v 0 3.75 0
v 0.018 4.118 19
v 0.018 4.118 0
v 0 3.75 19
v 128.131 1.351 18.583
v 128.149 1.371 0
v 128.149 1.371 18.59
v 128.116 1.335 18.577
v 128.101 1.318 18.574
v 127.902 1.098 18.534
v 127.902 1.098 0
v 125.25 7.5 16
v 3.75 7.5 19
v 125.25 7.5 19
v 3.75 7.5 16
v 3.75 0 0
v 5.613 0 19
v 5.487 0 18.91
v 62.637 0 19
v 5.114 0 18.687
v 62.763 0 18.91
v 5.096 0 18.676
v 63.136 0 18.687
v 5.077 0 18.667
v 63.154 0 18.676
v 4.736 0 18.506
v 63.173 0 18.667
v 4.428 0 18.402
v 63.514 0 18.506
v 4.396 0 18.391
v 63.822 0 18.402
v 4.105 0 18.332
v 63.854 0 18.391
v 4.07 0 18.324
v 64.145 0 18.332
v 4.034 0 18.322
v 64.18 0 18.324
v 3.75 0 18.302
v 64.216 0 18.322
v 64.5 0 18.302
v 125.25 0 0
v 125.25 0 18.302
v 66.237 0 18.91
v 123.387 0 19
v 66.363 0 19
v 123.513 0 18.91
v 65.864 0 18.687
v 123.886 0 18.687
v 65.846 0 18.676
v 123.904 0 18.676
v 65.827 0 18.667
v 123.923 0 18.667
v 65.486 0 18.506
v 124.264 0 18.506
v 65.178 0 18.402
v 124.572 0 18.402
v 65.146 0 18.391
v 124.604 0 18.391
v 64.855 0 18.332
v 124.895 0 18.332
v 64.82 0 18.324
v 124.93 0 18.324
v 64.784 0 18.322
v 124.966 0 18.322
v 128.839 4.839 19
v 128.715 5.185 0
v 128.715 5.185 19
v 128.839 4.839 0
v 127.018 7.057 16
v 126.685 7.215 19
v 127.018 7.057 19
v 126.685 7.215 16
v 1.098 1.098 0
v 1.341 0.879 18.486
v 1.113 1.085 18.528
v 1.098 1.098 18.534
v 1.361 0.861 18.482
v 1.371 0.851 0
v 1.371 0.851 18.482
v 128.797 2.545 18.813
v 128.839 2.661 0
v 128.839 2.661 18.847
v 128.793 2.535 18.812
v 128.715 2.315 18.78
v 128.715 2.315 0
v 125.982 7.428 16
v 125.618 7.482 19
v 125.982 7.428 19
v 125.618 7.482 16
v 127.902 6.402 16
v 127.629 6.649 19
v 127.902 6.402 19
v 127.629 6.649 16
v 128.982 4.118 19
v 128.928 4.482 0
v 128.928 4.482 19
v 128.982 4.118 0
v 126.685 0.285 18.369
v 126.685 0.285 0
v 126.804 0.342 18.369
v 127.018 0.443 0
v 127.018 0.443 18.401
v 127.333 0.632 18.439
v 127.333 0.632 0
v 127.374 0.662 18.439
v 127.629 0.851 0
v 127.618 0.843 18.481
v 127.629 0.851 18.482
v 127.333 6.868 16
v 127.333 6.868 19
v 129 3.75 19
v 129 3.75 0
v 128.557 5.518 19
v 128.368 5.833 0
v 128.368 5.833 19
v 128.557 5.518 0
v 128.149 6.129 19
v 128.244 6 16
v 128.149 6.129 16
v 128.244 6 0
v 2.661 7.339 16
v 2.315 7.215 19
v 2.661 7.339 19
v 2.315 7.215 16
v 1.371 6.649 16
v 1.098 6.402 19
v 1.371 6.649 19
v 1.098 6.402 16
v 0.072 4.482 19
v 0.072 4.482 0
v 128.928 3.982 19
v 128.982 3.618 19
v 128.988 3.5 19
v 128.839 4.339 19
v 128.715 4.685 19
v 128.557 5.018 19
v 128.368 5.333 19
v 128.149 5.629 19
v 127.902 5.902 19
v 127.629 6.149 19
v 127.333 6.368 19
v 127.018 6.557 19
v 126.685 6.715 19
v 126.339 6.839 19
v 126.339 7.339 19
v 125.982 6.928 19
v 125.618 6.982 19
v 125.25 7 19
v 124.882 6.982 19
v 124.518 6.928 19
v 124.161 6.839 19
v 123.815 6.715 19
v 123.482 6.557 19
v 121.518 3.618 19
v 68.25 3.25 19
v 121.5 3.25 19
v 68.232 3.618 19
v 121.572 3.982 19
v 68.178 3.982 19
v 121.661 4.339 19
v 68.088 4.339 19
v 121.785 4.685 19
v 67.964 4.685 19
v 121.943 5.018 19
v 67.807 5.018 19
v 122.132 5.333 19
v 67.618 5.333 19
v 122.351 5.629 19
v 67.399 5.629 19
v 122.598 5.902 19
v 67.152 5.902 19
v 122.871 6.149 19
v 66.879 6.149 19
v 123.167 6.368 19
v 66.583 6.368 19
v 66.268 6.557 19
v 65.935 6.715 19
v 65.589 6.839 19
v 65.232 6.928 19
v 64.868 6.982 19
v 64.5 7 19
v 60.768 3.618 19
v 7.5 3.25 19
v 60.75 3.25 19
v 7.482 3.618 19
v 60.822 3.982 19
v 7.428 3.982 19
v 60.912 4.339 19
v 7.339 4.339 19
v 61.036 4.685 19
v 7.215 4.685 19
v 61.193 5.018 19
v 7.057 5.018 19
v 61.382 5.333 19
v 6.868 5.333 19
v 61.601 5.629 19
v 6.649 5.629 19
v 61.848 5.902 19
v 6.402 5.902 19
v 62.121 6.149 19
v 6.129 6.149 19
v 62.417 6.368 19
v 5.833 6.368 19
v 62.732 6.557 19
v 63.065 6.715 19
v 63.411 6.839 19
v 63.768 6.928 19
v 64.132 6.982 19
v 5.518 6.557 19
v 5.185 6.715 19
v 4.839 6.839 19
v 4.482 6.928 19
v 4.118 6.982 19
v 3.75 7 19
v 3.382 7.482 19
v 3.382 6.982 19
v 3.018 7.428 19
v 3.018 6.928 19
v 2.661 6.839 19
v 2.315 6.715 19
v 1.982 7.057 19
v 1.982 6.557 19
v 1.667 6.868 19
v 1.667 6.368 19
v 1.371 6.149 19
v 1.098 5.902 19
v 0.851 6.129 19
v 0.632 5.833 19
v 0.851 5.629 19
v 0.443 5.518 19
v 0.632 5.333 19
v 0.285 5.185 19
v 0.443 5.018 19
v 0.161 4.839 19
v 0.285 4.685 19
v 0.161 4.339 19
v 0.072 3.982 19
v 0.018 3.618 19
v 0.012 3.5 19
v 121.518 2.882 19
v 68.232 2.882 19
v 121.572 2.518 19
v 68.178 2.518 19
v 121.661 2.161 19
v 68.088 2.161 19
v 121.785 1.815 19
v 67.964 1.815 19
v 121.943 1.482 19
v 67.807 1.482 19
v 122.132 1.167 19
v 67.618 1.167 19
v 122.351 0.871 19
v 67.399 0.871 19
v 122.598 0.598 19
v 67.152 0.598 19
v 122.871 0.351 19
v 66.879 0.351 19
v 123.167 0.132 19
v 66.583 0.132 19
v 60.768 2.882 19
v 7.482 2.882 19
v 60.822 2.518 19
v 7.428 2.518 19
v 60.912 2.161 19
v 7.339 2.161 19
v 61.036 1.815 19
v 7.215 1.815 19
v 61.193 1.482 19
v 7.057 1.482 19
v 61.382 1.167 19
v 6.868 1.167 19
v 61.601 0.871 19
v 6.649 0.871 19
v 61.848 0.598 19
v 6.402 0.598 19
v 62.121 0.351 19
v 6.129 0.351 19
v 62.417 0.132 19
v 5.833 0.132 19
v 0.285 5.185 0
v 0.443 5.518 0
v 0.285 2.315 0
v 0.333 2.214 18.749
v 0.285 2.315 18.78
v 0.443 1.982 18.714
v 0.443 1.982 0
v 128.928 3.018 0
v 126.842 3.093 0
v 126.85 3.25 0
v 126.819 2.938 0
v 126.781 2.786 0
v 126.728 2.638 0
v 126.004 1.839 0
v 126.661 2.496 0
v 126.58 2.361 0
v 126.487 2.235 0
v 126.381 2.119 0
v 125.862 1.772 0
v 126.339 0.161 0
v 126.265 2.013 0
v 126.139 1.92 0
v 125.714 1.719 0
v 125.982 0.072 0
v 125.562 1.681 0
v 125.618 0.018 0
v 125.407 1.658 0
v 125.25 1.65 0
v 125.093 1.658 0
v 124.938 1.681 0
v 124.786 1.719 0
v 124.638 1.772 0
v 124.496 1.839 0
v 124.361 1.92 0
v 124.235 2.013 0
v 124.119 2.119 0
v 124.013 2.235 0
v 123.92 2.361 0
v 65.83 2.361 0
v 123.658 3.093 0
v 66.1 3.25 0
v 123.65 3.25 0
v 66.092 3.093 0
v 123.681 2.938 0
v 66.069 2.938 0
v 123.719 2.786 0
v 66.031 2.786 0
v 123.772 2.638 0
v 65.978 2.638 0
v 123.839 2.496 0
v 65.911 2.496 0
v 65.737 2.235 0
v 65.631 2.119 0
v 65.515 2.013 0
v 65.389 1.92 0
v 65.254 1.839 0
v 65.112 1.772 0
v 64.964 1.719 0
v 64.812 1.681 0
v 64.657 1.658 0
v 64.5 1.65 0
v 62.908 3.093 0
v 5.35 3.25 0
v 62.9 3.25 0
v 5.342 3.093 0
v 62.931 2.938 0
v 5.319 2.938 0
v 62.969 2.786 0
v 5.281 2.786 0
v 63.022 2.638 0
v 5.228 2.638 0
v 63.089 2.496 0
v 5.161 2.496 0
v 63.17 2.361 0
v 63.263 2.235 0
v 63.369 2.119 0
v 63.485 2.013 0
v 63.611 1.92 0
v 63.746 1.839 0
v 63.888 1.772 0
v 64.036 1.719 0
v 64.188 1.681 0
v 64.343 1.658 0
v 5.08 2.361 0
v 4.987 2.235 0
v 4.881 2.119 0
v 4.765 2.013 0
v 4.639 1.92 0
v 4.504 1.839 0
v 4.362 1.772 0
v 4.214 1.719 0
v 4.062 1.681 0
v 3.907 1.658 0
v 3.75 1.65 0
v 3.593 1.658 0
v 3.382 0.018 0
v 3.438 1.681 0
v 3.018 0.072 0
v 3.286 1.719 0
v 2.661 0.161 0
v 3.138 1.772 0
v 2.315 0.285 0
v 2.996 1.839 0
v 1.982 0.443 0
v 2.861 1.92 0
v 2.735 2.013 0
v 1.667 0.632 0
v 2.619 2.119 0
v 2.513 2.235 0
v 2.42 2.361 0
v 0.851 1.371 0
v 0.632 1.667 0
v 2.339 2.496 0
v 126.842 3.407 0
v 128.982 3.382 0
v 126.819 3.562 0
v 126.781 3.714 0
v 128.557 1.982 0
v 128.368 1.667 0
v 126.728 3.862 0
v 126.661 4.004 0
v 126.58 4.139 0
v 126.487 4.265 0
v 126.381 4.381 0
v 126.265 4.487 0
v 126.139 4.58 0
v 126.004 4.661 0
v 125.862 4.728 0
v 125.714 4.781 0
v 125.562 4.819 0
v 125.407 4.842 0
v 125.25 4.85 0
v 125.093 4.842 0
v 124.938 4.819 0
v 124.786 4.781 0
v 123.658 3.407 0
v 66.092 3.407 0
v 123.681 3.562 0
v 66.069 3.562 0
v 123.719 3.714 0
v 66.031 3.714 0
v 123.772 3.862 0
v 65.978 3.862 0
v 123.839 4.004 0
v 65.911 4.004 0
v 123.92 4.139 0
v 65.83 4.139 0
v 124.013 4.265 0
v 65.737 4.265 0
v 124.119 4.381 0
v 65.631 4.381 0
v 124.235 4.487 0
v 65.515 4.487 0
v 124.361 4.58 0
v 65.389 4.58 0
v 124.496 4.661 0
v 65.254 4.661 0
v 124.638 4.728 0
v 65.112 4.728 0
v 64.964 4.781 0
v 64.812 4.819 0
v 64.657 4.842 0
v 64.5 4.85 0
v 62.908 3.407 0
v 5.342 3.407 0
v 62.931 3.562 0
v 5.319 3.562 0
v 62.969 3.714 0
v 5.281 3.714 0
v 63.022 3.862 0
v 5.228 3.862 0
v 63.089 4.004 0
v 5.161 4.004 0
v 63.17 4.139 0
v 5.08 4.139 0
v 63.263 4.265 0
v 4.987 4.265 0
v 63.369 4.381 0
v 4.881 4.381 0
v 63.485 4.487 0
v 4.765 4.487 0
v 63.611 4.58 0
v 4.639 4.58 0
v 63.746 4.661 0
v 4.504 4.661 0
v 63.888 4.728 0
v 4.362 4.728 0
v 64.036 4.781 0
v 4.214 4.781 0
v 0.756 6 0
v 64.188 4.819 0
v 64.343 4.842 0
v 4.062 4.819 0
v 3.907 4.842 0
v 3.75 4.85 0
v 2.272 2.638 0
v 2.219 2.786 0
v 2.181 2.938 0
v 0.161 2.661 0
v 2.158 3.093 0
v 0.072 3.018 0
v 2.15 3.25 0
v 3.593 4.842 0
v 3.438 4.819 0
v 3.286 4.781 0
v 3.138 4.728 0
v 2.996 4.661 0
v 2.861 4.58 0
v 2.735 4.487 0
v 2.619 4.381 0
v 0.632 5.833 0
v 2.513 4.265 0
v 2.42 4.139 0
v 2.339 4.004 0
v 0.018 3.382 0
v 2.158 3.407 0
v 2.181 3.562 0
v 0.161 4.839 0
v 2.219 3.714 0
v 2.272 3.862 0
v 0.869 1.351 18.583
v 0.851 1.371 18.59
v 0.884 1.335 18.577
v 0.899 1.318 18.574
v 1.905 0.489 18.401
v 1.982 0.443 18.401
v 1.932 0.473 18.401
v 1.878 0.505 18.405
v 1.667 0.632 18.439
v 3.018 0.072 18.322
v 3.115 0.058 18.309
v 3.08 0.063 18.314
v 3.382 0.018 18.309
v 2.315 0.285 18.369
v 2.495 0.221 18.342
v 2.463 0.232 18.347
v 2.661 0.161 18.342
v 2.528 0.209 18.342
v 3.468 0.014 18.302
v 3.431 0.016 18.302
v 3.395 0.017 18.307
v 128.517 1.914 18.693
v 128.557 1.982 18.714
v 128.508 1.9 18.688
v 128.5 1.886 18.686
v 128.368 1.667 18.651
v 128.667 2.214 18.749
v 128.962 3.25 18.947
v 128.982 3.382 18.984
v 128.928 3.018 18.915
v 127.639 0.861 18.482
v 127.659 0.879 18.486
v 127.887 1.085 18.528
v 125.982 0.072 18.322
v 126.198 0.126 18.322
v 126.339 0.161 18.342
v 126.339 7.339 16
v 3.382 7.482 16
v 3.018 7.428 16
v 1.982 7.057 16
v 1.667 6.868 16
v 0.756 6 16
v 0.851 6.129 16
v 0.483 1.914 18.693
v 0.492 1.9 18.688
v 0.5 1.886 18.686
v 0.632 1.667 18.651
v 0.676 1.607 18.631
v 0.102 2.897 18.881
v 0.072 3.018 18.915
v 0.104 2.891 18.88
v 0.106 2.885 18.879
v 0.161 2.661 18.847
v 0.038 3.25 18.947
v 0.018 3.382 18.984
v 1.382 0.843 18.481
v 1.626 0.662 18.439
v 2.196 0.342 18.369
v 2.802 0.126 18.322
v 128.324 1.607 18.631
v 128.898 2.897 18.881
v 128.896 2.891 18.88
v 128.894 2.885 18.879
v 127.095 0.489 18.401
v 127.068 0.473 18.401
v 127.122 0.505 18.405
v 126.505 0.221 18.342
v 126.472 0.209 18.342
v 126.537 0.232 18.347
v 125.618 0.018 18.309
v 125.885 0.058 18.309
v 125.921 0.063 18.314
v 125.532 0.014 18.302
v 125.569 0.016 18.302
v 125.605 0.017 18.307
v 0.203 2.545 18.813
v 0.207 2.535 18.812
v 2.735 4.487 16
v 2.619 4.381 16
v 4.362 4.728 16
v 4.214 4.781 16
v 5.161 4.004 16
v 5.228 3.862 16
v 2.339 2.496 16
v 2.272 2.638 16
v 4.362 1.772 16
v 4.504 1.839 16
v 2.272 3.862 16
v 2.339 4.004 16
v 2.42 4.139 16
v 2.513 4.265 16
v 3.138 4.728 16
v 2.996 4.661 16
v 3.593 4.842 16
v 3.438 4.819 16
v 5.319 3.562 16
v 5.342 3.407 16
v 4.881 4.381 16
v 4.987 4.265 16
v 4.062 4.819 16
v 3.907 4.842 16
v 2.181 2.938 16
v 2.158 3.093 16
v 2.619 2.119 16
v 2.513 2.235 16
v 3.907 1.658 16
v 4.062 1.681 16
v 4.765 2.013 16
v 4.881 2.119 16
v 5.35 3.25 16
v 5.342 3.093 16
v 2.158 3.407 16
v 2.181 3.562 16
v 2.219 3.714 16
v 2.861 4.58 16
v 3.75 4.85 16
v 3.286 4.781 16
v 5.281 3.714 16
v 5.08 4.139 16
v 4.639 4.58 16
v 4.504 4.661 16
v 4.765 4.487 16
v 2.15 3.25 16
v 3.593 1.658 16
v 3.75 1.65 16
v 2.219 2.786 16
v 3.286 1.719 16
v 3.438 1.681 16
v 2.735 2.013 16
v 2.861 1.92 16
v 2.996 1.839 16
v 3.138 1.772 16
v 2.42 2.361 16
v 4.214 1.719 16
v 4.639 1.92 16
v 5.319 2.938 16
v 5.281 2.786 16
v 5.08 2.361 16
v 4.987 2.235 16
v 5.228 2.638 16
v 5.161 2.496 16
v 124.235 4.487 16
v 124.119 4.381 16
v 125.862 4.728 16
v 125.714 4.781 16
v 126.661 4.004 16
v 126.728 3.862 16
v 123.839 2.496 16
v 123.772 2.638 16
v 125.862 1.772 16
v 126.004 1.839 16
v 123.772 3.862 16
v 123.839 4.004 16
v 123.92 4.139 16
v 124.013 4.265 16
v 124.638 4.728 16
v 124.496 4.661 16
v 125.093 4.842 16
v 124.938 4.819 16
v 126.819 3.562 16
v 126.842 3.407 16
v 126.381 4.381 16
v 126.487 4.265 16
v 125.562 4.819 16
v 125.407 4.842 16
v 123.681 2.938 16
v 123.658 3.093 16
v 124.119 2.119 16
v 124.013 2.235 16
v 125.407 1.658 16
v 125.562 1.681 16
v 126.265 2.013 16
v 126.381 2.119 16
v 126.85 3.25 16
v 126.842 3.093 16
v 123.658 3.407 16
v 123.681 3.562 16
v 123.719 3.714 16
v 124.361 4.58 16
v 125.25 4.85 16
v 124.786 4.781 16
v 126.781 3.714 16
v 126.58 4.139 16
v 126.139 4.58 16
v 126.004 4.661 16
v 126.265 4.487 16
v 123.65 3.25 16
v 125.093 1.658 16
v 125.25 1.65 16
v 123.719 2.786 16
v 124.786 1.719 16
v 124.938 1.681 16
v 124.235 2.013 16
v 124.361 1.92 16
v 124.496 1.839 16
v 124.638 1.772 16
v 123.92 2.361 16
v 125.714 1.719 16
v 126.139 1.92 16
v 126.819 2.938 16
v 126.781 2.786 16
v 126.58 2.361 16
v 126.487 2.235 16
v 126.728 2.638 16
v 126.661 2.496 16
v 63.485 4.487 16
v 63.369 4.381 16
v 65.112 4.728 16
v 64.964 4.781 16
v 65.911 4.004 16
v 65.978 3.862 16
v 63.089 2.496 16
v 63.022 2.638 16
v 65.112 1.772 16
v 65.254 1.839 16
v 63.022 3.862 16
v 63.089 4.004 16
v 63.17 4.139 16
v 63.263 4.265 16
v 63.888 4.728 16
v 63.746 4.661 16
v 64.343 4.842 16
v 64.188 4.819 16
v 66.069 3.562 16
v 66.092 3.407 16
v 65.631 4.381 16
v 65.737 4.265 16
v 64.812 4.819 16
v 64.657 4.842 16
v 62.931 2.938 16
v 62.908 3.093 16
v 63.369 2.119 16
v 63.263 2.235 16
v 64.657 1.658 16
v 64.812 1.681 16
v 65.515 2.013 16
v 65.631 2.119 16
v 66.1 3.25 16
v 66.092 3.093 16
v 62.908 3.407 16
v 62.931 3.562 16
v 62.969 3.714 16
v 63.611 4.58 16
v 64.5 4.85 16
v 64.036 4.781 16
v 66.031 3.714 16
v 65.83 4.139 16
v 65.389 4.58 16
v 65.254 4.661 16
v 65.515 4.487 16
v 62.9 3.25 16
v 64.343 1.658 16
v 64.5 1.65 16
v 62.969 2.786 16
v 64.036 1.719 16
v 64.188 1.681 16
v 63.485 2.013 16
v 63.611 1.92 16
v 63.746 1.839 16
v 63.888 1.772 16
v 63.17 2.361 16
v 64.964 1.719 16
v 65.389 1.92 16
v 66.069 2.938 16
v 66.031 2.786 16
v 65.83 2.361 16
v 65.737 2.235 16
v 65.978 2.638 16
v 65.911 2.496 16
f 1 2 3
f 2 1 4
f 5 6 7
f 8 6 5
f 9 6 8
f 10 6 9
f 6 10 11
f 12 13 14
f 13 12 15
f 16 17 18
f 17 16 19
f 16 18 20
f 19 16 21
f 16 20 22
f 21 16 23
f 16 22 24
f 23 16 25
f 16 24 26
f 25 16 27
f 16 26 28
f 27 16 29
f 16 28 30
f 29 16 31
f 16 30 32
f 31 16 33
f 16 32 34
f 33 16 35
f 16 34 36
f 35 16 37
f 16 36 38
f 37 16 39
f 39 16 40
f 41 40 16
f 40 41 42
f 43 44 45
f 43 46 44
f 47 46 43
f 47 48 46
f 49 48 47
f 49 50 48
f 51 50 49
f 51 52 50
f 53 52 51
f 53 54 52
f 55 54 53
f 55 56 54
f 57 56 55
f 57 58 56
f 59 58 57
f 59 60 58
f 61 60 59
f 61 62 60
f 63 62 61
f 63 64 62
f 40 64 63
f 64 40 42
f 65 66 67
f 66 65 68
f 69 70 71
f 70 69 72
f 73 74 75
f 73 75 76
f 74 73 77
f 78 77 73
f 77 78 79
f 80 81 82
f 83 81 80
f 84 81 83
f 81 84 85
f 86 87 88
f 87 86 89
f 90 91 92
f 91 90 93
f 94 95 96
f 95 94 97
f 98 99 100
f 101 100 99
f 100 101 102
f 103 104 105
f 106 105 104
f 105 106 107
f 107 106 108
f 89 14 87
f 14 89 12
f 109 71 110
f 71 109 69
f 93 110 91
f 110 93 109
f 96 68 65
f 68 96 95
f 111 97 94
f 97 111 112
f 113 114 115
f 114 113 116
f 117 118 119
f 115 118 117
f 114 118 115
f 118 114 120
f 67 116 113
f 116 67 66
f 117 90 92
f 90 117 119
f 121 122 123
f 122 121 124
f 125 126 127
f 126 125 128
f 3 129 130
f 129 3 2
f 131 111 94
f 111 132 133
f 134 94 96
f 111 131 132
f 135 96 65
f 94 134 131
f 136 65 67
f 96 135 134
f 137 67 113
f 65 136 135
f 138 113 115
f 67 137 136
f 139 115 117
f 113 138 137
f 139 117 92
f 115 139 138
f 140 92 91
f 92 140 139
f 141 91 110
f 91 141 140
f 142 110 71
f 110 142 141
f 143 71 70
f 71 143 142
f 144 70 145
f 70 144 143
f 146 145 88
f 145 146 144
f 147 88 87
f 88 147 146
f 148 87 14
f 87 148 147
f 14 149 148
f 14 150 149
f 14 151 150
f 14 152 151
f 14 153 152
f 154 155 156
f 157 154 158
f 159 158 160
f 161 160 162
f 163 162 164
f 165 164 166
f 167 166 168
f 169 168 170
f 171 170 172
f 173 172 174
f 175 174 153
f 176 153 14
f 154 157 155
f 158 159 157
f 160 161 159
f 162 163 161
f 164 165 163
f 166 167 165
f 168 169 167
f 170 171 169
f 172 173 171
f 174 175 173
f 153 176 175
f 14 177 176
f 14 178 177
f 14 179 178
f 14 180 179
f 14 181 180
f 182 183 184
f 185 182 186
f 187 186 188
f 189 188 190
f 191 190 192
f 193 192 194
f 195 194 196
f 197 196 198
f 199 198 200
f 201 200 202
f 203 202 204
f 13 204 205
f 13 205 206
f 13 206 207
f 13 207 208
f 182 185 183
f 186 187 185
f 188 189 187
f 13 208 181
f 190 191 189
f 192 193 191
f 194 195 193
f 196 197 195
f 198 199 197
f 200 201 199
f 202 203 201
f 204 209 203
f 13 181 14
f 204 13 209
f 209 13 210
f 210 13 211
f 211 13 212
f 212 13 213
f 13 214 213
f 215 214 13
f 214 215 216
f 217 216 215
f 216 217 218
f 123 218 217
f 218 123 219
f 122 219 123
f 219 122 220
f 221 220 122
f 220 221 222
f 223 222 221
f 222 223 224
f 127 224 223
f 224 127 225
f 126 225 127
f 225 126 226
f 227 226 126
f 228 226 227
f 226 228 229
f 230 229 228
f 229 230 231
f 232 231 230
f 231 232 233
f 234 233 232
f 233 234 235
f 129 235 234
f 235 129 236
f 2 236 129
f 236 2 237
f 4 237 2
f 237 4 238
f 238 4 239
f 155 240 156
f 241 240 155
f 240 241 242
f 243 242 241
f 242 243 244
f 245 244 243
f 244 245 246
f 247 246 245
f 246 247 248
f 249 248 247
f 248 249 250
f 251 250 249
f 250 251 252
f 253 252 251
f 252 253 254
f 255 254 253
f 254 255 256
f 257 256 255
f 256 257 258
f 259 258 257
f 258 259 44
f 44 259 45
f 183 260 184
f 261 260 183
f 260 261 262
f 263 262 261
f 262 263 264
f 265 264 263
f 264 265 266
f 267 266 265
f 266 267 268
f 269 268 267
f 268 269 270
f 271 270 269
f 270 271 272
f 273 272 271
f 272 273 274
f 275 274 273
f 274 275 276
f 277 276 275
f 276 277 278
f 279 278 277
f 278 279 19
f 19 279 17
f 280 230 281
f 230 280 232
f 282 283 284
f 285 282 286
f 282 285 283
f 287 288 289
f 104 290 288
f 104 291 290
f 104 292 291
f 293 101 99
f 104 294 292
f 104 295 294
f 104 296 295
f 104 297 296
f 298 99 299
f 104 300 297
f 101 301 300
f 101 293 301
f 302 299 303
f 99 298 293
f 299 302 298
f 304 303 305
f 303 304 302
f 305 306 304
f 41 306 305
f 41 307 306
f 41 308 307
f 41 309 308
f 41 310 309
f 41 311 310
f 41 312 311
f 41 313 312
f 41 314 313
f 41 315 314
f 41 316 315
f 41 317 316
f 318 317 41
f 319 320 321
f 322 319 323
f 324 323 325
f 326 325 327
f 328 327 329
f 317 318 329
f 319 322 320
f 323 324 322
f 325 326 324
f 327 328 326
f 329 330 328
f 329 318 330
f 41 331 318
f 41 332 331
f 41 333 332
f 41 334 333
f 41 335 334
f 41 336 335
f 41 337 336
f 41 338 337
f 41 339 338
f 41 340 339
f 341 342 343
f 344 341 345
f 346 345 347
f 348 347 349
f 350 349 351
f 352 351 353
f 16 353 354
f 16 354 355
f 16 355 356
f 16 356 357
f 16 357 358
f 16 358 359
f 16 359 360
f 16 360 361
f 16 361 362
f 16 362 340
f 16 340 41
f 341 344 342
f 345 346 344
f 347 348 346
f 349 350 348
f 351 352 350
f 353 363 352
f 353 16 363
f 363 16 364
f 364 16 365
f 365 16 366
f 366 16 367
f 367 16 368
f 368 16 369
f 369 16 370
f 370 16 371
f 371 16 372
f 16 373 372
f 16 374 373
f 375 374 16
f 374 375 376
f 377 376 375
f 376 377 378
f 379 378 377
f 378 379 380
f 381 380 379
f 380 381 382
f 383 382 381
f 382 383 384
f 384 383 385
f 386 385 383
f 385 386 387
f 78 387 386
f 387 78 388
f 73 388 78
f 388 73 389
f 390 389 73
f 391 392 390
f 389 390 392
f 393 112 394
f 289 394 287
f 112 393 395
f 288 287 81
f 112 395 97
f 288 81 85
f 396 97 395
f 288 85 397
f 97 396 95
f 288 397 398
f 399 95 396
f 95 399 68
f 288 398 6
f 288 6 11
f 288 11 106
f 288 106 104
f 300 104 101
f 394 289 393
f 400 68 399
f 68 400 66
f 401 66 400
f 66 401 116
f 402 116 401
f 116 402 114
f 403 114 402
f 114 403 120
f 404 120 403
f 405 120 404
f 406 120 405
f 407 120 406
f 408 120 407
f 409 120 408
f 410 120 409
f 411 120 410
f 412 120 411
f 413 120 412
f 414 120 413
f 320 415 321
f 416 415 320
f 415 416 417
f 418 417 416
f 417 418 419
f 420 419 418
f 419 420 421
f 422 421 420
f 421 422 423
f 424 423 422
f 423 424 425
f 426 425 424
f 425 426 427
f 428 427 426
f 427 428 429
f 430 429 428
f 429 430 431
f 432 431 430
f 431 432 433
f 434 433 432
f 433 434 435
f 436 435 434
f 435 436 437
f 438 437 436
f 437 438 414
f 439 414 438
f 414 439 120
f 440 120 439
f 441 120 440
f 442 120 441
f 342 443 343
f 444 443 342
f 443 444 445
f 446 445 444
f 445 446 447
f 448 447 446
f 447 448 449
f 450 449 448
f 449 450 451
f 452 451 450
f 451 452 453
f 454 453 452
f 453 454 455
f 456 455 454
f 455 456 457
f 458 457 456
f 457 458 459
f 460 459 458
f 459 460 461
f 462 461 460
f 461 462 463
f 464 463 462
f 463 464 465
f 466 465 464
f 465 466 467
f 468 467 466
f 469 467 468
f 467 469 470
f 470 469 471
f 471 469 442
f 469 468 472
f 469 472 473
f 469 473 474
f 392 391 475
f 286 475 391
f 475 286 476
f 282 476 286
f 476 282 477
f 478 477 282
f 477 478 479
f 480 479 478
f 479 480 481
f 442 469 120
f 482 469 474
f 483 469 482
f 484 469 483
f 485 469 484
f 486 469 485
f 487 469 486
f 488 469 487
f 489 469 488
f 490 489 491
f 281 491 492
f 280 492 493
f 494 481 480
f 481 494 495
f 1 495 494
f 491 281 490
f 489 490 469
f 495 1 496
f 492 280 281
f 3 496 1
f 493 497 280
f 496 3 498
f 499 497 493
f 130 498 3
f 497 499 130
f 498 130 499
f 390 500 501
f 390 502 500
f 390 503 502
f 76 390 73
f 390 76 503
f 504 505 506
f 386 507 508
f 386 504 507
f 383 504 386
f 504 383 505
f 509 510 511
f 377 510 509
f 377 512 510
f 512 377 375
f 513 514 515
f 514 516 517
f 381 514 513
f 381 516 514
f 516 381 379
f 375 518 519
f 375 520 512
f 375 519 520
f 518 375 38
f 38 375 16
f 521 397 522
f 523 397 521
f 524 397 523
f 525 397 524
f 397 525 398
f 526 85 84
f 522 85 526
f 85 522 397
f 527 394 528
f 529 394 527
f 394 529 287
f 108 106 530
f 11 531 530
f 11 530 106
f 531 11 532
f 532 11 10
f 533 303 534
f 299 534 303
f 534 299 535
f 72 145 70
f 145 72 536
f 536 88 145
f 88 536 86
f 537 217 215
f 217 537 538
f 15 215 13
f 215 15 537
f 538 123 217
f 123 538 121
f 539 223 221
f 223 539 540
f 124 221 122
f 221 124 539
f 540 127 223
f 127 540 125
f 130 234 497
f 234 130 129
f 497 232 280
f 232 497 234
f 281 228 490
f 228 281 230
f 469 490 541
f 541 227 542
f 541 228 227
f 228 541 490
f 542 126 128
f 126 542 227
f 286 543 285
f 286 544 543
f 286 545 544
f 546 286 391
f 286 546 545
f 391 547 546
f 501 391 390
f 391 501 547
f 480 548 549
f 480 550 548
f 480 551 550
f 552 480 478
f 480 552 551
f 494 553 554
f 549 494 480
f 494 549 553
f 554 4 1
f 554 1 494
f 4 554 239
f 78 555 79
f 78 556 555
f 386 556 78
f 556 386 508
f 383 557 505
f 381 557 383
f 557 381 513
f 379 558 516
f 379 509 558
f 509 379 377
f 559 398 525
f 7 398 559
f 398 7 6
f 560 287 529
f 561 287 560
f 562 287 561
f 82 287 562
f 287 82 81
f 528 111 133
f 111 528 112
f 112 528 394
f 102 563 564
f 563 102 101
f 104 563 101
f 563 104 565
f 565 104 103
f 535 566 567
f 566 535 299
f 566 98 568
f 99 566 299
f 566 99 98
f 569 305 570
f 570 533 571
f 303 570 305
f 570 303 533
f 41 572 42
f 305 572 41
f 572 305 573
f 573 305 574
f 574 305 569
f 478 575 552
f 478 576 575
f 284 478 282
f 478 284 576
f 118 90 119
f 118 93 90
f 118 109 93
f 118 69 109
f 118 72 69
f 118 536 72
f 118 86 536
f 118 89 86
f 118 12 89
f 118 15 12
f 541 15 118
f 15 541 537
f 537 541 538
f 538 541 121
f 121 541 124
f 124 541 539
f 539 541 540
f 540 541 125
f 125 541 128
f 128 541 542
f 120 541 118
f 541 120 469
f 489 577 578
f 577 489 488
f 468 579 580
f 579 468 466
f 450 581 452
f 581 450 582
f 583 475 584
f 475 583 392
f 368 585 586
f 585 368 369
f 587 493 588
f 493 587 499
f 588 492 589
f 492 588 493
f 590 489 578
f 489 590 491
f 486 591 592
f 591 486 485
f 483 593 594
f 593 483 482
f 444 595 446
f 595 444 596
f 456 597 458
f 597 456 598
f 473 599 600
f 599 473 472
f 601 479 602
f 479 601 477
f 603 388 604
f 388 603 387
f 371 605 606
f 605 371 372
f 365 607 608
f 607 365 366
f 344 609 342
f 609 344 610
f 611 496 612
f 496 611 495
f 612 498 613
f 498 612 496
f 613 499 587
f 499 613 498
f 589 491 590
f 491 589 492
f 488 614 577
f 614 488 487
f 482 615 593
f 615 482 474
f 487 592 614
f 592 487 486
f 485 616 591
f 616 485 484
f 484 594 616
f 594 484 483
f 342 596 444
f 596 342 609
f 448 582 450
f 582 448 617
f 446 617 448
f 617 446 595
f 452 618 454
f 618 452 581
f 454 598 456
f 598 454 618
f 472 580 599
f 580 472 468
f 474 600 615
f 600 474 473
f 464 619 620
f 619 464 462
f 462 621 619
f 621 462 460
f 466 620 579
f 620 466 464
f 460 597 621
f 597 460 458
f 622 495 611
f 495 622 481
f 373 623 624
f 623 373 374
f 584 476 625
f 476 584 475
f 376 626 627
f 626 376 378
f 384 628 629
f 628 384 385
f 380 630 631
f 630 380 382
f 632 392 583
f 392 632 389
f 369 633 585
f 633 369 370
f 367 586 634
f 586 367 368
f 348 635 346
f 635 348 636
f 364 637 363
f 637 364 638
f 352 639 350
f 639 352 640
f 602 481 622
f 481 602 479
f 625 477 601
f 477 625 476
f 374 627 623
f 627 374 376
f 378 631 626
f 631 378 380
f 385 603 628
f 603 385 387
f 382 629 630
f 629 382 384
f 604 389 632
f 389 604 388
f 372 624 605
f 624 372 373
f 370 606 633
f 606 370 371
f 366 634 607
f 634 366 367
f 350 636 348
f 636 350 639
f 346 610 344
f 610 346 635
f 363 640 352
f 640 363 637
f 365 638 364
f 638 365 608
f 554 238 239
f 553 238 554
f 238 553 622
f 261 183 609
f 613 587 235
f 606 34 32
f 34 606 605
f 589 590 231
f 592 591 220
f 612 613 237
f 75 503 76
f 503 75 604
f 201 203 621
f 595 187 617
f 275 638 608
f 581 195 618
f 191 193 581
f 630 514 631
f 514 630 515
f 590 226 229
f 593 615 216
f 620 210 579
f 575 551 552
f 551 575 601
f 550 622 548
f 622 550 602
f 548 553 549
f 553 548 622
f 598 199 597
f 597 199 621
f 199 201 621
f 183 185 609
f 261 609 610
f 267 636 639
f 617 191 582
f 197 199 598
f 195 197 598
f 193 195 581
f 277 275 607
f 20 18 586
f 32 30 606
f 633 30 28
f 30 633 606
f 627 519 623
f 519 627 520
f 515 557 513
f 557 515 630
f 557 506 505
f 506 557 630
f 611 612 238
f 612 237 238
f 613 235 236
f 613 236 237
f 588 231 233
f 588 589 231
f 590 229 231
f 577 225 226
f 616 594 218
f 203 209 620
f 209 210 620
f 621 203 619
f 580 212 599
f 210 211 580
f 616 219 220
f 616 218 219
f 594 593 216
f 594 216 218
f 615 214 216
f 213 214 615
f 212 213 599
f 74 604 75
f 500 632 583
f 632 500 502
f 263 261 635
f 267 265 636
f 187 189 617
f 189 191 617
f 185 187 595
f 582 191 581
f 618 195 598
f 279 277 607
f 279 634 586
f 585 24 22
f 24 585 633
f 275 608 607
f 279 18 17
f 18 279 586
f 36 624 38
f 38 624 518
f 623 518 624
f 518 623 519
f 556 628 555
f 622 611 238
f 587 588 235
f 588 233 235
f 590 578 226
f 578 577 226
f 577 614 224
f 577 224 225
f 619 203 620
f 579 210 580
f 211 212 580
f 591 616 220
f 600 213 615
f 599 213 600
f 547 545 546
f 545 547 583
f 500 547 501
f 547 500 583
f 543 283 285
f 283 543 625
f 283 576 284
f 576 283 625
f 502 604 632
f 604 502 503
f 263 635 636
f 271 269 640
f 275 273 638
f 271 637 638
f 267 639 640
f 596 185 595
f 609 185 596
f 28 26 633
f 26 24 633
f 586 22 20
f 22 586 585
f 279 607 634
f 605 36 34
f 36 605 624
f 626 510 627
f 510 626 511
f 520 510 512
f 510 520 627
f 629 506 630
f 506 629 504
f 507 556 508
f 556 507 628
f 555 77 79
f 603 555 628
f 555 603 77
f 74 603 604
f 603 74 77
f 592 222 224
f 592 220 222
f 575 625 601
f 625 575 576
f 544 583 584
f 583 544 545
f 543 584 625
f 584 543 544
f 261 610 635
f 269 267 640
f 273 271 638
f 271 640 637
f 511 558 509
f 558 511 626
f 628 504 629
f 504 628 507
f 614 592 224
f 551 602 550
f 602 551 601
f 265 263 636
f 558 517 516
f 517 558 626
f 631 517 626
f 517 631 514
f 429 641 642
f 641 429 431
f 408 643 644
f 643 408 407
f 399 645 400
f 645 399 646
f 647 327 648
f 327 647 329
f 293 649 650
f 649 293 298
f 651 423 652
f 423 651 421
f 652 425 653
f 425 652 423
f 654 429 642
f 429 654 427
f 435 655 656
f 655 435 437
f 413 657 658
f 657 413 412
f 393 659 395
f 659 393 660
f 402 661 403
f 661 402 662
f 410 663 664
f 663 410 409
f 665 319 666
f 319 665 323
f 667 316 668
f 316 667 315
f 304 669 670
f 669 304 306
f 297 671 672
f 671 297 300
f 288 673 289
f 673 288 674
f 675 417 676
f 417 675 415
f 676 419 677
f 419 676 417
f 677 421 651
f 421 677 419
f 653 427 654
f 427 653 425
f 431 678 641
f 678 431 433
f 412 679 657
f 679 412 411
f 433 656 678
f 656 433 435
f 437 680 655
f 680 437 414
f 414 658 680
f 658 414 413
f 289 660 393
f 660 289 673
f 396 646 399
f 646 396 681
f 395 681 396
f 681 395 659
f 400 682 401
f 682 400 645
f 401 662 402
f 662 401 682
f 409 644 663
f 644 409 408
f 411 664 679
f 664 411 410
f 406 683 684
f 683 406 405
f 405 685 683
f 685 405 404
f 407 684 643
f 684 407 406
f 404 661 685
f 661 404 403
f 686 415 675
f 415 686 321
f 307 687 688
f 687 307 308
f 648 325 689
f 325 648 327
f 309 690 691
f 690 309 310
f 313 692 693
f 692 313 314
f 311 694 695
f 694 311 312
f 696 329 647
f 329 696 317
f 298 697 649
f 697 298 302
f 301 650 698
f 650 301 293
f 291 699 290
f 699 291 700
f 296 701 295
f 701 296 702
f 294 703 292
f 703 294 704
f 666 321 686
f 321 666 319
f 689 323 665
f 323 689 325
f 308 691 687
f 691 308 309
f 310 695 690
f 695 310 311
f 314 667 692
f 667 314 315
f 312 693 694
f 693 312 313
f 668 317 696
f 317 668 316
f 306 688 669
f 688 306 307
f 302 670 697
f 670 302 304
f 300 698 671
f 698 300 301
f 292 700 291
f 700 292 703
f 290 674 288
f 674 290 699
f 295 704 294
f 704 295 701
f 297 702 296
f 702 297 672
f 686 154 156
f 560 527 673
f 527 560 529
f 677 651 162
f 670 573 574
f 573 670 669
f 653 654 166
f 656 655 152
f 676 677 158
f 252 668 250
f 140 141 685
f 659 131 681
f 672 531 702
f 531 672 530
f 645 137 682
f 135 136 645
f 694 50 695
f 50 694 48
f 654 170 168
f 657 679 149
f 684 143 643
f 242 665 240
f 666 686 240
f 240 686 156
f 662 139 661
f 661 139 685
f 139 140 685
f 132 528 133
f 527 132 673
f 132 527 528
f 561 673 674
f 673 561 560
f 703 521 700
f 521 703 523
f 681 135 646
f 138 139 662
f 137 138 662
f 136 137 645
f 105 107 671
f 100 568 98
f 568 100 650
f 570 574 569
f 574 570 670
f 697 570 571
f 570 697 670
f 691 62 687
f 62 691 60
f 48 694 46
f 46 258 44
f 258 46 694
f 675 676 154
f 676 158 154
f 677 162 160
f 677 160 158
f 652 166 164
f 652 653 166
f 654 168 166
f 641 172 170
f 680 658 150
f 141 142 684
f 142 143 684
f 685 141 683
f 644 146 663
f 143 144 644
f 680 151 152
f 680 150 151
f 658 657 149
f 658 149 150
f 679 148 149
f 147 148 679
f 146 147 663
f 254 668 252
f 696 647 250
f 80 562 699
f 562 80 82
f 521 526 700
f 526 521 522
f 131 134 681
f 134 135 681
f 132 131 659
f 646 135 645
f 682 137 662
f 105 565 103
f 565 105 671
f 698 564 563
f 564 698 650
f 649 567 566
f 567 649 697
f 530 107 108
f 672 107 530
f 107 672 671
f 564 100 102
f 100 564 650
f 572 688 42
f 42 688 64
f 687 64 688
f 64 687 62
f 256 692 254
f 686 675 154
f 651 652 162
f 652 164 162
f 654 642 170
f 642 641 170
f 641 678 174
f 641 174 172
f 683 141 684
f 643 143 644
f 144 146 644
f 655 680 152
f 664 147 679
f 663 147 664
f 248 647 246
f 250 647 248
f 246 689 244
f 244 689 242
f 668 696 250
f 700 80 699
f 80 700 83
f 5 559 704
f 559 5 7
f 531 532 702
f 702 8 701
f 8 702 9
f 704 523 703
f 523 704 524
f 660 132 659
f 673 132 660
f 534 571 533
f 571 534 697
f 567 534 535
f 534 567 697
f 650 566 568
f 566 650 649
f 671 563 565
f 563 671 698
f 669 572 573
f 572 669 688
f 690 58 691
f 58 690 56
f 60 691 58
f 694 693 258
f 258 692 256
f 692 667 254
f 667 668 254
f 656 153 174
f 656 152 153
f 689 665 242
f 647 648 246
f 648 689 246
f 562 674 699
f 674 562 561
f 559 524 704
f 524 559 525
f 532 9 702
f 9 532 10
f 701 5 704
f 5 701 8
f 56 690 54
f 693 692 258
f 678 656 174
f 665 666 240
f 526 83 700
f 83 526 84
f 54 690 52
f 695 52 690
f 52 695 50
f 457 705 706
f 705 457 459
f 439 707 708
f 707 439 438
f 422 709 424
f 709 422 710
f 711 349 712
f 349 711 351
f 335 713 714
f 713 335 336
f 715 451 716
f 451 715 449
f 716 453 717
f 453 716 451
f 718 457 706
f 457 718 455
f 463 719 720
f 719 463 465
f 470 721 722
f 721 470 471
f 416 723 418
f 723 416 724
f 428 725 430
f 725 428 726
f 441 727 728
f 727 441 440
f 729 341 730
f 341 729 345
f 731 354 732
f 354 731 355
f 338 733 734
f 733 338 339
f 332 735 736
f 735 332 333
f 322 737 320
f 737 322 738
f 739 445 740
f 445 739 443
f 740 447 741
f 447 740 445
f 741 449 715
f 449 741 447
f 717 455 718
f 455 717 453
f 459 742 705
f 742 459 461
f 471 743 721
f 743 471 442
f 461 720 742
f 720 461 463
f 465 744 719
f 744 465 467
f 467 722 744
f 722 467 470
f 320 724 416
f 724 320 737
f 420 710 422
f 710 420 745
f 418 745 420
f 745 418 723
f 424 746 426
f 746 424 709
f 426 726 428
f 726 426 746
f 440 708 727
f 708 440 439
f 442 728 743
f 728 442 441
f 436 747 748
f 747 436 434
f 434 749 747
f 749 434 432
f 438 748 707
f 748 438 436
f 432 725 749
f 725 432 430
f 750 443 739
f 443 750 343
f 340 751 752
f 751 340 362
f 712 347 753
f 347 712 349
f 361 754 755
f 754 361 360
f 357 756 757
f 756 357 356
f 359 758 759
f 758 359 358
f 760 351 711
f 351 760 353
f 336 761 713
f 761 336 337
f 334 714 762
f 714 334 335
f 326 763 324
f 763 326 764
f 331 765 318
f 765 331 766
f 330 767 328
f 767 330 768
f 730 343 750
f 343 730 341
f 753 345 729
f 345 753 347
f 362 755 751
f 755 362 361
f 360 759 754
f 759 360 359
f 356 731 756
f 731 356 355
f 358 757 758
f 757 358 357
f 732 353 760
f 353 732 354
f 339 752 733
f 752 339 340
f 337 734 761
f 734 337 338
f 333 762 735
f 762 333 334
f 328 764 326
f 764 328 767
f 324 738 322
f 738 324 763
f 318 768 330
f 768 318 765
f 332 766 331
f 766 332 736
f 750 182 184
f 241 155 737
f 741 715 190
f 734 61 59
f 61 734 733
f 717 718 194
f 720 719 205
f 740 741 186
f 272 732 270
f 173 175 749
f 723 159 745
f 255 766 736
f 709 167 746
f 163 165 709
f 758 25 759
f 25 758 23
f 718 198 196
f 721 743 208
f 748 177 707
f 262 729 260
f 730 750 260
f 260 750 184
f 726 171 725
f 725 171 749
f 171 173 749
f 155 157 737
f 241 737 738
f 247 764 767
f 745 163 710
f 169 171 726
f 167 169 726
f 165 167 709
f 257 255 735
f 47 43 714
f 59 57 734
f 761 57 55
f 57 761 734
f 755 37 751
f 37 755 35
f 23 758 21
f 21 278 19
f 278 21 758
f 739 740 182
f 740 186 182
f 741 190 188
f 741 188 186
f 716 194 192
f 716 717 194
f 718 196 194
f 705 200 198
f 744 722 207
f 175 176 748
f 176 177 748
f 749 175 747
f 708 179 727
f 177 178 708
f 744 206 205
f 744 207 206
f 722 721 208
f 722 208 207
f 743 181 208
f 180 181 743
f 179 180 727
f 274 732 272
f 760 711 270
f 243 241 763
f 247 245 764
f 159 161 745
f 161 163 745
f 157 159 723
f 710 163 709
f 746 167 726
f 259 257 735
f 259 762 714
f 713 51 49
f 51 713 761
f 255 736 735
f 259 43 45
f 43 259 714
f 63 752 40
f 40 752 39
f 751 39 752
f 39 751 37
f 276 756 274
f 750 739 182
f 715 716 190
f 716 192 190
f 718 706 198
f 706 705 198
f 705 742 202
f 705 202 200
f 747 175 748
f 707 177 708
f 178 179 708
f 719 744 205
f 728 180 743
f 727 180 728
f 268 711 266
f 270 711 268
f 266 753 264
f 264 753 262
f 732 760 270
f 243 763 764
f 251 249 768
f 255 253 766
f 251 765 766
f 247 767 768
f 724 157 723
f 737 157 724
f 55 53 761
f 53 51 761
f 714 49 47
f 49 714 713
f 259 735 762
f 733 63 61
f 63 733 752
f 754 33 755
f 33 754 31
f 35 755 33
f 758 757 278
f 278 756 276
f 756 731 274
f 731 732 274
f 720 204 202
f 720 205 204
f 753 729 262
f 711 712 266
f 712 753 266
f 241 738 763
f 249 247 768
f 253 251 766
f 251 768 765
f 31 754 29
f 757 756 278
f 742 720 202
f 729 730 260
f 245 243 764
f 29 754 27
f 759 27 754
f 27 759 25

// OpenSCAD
// Swanson Metric Speed Square Wall Mount

cutout_height = 7.5;
cutout_width = 129;
tool_distance = 10;
tool_thickness = 6;
wall_distance = tool_distance + tool_thickness;
wall_offset = 3;
$fn = 64;

module hanger() {
    difference() {
        translate([cutout_height/2, cutout_height/2, 0])
        hull() {
            cylinder(d = cutout_height, h = wall_distance + wall_offset);
            translate([cutout_width - cutout_height, 0, 0]) 
                cylinder(d = cutout_height, h = wall_distance + wall_offset);
        }
        translate([0, cutout_height - wall_offset/2, 0])
            cube([cutout_width, wall_offset/2, wall_distance]);
    }
}


module screw() {
    rotate([0, 180, 0]) {
        cylinder(d=3.2, h=tool_distance + tool_thickness + wall_offset + 0.1);
        cylinder(d1=7.5, d2=3.2, h=3);
    }
}

difference() {
    hanger();
    translate([cutout_height/2, cutout_height/2 -0.5, wall_distance + wall_offset])
        screw();
    translate([cutout_width - cutout_height/2, cutout_height/2 -0.5, wall_distance + wall_offset])
        screw();
    translate([cutout_width/2, cutout_height/2 -0.5, wall_distance + wall_offset])
        screw();
    
}
